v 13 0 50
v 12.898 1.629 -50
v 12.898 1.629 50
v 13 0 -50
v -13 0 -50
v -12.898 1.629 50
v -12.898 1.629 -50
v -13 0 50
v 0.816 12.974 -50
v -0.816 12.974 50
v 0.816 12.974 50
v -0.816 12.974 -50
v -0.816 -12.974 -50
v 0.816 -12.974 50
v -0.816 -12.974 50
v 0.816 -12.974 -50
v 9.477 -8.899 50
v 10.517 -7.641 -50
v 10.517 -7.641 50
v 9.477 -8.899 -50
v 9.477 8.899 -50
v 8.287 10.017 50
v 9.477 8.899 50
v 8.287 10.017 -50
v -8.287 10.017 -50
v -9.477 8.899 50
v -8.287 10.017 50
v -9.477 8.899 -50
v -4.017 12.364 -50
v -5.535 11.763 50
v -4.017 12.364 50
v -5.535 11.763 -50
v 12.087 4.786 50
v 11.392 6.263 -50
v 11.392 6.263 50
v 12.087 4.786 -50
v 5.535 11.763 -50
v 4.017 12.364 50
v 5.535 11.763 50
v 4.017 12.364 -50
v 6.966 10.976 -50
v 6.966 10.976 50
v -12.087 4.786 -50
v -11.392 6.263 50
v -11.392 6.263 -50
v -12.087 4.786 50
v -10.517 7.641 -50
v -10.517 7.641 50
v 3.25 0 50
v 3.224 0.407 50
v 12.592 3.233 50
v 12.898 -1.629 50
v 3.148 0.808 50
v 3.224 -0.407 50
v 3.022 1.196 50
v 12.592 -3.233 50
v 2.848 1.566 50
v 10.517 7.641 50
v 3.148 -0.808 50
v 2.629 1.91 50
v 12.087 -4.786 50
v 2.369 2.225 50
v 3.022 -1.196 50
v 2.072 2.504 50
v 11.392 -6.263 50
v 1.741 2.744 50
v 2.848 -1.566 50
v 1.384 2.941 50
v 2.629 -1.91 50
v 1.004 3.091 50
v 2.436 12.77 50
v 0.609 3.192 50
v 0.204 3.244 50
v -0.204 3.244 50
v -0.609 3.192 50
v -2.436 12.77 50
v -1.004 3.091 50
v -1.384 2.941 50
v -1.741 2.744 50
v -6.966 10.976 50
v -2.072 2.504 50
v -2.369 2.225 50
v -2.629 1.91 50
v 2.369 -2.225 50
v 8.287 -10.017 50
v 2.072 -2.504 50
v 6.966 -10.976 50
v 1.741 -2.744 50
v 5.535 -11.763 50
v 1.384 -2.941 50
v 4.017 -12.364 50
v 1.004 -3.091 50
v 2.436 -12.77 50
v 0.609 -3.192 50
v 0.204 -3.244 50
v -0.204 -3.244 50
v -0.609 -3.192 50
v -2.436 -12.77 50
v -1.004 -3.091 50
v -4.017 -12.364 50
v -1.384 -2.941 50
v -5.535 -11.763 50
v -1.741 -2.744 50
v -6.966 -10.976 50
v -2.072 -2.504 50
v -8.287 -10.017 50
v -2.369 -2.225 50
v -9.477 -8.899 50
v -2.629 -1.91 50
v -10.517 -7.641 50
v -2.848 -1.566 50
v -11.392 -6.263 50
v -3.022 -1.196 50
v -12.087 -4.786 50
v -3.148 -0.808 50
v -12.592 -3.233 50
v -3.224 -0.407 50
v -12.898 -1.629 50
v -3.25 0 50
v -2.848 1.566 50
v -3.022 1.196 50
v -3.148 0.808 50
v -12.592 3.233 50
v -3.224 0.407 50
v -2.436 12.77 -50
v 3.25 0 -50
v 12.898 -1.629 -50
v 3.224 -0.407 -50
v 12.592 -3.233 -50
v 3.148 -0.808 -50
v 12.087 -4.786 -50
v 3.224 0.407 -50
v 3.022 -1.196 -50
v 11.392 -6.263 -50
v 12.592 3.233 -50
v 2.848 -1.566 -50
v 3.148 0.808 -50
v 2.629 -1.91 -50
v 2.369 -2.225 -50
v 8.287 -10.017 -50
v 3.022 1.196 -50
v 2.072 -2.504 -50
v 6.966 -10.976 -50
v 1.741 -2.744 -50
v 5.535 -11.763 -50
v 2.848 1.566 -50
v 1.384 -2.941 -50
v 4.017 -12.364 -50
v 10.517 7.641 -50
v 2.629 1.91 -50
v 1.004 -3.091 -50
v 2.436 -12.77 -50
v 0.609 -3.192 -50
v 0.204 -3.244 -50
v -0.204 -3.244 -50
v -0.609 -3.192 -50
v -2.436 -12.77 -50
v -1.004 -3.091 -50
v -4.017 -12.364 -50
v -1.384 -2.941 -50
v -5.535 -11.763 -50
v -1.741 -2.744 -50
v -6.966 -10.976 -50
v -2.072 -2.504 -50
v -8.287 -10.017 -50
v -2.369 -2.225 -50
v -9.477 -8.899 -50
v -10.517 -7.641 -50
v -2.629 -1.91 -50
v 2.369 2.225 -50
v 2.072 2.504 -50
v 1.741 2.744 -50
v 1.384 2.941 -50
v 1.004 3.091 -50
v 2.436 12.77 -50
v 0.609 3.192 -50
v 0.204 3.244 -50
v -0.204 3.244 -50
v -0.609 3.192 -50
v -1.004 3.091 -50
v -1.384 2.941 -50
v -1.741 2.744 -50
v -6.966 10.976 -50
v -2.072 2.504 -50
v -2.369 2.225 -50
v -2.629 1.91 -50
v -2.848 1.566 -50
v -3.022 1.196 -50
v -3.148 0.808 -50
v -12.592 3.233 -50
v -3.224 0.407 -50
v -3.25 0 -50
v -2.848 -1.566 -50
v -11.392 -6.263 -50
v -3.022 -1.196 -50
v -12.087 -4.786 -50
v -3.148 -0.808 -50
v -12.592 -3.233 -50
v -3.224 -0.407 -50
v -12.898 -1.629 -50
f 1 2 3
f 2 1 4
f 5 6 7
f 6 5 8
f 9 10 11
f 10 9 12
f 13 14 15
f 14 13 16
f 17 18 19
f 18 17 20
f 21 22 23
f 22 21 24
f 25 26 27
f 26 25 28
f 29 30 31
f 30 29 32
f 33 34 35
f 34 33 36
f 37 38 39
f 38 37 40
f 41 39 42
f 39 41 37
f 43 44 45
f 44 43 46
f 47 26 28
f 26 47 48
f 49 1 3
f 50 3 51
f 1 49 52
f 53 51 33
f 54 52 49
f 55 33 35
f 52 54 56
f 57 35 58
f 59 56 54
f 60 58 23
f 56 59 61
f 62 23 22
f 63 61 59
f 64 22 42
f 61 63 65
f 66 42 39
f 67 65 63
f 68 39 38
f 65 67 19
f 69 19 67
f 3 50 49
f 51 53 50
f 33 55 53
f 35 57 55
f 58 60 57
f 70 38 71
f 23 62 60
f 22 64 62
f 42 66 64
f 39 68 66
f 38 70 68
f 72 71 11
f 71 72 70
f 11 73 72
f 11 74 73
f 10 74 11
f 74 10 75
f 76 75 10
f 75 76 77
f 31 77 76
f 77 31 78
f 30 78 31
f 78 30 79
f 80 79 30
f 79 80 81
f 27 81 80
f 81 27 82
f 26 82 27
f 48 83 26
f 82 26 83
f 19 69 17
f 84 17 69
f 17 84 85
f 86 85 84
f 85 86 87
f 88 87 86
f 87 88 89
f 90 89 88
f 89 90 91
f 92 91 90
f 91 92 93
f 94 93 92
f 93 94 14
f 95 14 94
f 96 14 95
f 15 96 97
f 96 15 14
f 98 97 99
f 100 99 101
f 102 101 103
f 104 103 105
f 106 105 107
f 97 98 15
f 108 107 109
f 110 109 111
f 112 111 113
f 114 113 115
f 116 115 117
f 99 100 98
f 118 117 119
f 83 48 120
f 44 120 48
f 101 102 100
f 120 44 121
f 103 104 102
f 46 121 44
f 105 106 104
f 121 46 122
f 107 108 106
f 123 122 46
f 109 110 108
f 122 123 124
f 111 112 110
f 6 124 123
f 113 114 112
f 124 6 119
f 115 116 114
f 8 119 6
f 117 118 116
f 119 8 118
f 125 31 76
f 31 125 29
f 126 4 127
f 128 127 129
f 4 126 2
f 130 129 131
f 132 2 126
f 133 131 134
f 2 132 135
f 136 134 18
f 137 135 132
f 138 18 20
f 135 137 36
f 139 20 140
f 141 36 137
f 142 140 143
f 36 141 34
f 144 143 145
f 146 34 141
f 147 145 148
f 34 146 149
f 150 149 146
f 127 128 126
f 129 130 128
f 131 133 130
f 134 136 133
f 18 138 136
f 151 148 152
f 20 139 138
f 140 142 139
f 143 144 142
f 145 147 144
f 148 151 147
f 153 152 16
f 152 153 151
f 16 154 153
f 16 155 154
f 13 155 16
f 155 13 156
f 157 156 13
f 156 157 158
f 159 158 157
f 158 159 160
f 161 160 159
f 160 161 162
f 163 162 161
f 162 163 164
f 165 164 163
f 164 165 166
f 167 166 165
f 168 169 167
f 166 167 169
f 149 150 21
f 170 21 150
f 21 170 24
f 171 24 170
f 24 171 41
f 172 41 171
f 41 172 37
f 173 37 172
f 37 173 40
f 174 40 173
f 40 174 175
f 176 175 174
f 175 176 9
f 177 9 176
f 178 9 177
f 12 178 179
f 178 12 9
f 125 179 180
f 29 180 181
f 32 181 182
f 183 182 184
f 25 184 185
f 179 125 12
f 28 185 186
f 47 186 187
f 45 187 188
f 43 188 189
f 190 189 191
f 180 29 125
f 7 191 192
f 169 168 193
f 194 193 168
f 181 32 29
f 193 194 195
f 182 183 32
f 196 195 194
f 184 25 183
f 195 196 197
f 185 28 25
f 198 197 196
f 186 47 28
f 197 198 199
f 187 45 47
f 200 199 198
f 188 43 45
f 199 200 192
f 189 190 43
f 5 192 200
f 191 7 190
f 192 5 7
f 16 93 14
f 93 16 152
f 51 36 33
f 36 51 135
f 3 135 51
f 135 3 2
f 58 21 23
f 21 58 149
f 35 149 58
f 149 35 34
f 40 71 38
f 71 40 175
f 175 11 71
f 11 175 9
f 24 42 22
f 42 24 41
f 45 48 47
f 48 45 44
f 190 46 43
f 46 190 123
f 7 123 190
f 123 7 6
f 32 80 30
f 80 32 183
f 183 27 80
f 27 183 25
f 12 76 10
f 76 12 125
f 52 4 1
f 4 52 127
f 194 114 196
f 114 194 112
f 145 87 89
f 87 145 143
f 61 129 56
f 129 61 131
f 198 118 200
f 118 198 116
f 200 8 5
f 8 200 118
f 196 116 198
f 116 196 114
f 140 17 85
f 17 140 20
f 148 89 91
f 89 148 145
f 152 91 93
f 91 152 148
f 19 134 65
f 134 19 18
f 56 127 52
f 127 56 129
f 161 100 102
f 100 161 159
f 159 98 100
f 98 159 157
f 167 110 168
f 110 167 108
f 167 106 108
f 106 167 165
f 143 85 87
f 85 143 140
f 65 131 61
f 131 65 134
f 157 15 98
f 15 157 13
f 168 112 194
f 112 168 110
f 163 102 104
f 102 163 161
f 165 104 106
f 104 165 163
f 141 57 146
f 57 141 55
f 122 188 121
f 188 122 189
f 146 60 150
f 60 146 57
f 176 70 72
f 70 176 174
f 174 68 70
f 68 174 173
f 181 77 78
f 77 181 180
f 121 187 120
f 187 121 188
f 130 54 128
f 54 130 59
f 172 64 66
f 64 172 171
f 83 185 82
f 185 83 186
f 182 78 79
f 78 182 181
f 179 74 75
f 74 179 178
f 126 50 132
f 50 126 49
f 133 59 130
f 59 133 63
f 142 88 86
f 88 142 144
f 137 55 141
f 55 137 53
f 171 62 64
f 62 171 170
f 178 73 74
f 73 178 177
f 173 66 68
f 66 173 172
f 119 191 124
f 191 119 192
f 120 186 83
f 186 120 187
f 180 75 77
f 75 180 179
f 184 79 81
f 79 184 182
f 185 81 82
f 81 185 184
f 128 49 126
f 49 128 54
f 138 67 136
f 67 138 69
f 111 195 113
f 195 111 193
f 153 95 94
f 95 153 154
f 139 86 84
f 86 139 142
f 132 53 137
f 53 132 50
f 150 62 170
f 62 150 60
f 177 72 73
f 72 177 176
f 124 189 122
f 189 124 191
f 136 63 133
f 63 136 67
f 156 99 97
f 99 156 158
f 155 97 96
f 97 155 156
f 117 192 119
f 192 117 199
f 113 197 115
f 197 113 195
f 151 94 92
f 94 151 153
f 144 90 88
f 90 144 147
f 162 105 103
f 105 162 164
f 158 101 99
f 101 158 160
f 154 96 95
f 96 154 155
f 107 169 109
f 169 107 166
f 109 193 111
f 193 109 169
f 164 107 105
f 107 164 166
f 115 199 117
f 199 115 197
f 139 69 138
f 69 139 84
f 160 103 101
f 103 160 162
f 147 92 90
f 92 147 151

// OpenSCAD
$fn = 50;


difference() {
	union() {
		translate(v = [0, 0, -50.0000000000]) {
			cylinder(h = 100, r = 13.0000000000);
		}
	}
	union() {
		translate(v = [0, 0, -100.0000000000]) {
			cylinder(h = 200, r = 3.2500000000);
		}
	}
}
